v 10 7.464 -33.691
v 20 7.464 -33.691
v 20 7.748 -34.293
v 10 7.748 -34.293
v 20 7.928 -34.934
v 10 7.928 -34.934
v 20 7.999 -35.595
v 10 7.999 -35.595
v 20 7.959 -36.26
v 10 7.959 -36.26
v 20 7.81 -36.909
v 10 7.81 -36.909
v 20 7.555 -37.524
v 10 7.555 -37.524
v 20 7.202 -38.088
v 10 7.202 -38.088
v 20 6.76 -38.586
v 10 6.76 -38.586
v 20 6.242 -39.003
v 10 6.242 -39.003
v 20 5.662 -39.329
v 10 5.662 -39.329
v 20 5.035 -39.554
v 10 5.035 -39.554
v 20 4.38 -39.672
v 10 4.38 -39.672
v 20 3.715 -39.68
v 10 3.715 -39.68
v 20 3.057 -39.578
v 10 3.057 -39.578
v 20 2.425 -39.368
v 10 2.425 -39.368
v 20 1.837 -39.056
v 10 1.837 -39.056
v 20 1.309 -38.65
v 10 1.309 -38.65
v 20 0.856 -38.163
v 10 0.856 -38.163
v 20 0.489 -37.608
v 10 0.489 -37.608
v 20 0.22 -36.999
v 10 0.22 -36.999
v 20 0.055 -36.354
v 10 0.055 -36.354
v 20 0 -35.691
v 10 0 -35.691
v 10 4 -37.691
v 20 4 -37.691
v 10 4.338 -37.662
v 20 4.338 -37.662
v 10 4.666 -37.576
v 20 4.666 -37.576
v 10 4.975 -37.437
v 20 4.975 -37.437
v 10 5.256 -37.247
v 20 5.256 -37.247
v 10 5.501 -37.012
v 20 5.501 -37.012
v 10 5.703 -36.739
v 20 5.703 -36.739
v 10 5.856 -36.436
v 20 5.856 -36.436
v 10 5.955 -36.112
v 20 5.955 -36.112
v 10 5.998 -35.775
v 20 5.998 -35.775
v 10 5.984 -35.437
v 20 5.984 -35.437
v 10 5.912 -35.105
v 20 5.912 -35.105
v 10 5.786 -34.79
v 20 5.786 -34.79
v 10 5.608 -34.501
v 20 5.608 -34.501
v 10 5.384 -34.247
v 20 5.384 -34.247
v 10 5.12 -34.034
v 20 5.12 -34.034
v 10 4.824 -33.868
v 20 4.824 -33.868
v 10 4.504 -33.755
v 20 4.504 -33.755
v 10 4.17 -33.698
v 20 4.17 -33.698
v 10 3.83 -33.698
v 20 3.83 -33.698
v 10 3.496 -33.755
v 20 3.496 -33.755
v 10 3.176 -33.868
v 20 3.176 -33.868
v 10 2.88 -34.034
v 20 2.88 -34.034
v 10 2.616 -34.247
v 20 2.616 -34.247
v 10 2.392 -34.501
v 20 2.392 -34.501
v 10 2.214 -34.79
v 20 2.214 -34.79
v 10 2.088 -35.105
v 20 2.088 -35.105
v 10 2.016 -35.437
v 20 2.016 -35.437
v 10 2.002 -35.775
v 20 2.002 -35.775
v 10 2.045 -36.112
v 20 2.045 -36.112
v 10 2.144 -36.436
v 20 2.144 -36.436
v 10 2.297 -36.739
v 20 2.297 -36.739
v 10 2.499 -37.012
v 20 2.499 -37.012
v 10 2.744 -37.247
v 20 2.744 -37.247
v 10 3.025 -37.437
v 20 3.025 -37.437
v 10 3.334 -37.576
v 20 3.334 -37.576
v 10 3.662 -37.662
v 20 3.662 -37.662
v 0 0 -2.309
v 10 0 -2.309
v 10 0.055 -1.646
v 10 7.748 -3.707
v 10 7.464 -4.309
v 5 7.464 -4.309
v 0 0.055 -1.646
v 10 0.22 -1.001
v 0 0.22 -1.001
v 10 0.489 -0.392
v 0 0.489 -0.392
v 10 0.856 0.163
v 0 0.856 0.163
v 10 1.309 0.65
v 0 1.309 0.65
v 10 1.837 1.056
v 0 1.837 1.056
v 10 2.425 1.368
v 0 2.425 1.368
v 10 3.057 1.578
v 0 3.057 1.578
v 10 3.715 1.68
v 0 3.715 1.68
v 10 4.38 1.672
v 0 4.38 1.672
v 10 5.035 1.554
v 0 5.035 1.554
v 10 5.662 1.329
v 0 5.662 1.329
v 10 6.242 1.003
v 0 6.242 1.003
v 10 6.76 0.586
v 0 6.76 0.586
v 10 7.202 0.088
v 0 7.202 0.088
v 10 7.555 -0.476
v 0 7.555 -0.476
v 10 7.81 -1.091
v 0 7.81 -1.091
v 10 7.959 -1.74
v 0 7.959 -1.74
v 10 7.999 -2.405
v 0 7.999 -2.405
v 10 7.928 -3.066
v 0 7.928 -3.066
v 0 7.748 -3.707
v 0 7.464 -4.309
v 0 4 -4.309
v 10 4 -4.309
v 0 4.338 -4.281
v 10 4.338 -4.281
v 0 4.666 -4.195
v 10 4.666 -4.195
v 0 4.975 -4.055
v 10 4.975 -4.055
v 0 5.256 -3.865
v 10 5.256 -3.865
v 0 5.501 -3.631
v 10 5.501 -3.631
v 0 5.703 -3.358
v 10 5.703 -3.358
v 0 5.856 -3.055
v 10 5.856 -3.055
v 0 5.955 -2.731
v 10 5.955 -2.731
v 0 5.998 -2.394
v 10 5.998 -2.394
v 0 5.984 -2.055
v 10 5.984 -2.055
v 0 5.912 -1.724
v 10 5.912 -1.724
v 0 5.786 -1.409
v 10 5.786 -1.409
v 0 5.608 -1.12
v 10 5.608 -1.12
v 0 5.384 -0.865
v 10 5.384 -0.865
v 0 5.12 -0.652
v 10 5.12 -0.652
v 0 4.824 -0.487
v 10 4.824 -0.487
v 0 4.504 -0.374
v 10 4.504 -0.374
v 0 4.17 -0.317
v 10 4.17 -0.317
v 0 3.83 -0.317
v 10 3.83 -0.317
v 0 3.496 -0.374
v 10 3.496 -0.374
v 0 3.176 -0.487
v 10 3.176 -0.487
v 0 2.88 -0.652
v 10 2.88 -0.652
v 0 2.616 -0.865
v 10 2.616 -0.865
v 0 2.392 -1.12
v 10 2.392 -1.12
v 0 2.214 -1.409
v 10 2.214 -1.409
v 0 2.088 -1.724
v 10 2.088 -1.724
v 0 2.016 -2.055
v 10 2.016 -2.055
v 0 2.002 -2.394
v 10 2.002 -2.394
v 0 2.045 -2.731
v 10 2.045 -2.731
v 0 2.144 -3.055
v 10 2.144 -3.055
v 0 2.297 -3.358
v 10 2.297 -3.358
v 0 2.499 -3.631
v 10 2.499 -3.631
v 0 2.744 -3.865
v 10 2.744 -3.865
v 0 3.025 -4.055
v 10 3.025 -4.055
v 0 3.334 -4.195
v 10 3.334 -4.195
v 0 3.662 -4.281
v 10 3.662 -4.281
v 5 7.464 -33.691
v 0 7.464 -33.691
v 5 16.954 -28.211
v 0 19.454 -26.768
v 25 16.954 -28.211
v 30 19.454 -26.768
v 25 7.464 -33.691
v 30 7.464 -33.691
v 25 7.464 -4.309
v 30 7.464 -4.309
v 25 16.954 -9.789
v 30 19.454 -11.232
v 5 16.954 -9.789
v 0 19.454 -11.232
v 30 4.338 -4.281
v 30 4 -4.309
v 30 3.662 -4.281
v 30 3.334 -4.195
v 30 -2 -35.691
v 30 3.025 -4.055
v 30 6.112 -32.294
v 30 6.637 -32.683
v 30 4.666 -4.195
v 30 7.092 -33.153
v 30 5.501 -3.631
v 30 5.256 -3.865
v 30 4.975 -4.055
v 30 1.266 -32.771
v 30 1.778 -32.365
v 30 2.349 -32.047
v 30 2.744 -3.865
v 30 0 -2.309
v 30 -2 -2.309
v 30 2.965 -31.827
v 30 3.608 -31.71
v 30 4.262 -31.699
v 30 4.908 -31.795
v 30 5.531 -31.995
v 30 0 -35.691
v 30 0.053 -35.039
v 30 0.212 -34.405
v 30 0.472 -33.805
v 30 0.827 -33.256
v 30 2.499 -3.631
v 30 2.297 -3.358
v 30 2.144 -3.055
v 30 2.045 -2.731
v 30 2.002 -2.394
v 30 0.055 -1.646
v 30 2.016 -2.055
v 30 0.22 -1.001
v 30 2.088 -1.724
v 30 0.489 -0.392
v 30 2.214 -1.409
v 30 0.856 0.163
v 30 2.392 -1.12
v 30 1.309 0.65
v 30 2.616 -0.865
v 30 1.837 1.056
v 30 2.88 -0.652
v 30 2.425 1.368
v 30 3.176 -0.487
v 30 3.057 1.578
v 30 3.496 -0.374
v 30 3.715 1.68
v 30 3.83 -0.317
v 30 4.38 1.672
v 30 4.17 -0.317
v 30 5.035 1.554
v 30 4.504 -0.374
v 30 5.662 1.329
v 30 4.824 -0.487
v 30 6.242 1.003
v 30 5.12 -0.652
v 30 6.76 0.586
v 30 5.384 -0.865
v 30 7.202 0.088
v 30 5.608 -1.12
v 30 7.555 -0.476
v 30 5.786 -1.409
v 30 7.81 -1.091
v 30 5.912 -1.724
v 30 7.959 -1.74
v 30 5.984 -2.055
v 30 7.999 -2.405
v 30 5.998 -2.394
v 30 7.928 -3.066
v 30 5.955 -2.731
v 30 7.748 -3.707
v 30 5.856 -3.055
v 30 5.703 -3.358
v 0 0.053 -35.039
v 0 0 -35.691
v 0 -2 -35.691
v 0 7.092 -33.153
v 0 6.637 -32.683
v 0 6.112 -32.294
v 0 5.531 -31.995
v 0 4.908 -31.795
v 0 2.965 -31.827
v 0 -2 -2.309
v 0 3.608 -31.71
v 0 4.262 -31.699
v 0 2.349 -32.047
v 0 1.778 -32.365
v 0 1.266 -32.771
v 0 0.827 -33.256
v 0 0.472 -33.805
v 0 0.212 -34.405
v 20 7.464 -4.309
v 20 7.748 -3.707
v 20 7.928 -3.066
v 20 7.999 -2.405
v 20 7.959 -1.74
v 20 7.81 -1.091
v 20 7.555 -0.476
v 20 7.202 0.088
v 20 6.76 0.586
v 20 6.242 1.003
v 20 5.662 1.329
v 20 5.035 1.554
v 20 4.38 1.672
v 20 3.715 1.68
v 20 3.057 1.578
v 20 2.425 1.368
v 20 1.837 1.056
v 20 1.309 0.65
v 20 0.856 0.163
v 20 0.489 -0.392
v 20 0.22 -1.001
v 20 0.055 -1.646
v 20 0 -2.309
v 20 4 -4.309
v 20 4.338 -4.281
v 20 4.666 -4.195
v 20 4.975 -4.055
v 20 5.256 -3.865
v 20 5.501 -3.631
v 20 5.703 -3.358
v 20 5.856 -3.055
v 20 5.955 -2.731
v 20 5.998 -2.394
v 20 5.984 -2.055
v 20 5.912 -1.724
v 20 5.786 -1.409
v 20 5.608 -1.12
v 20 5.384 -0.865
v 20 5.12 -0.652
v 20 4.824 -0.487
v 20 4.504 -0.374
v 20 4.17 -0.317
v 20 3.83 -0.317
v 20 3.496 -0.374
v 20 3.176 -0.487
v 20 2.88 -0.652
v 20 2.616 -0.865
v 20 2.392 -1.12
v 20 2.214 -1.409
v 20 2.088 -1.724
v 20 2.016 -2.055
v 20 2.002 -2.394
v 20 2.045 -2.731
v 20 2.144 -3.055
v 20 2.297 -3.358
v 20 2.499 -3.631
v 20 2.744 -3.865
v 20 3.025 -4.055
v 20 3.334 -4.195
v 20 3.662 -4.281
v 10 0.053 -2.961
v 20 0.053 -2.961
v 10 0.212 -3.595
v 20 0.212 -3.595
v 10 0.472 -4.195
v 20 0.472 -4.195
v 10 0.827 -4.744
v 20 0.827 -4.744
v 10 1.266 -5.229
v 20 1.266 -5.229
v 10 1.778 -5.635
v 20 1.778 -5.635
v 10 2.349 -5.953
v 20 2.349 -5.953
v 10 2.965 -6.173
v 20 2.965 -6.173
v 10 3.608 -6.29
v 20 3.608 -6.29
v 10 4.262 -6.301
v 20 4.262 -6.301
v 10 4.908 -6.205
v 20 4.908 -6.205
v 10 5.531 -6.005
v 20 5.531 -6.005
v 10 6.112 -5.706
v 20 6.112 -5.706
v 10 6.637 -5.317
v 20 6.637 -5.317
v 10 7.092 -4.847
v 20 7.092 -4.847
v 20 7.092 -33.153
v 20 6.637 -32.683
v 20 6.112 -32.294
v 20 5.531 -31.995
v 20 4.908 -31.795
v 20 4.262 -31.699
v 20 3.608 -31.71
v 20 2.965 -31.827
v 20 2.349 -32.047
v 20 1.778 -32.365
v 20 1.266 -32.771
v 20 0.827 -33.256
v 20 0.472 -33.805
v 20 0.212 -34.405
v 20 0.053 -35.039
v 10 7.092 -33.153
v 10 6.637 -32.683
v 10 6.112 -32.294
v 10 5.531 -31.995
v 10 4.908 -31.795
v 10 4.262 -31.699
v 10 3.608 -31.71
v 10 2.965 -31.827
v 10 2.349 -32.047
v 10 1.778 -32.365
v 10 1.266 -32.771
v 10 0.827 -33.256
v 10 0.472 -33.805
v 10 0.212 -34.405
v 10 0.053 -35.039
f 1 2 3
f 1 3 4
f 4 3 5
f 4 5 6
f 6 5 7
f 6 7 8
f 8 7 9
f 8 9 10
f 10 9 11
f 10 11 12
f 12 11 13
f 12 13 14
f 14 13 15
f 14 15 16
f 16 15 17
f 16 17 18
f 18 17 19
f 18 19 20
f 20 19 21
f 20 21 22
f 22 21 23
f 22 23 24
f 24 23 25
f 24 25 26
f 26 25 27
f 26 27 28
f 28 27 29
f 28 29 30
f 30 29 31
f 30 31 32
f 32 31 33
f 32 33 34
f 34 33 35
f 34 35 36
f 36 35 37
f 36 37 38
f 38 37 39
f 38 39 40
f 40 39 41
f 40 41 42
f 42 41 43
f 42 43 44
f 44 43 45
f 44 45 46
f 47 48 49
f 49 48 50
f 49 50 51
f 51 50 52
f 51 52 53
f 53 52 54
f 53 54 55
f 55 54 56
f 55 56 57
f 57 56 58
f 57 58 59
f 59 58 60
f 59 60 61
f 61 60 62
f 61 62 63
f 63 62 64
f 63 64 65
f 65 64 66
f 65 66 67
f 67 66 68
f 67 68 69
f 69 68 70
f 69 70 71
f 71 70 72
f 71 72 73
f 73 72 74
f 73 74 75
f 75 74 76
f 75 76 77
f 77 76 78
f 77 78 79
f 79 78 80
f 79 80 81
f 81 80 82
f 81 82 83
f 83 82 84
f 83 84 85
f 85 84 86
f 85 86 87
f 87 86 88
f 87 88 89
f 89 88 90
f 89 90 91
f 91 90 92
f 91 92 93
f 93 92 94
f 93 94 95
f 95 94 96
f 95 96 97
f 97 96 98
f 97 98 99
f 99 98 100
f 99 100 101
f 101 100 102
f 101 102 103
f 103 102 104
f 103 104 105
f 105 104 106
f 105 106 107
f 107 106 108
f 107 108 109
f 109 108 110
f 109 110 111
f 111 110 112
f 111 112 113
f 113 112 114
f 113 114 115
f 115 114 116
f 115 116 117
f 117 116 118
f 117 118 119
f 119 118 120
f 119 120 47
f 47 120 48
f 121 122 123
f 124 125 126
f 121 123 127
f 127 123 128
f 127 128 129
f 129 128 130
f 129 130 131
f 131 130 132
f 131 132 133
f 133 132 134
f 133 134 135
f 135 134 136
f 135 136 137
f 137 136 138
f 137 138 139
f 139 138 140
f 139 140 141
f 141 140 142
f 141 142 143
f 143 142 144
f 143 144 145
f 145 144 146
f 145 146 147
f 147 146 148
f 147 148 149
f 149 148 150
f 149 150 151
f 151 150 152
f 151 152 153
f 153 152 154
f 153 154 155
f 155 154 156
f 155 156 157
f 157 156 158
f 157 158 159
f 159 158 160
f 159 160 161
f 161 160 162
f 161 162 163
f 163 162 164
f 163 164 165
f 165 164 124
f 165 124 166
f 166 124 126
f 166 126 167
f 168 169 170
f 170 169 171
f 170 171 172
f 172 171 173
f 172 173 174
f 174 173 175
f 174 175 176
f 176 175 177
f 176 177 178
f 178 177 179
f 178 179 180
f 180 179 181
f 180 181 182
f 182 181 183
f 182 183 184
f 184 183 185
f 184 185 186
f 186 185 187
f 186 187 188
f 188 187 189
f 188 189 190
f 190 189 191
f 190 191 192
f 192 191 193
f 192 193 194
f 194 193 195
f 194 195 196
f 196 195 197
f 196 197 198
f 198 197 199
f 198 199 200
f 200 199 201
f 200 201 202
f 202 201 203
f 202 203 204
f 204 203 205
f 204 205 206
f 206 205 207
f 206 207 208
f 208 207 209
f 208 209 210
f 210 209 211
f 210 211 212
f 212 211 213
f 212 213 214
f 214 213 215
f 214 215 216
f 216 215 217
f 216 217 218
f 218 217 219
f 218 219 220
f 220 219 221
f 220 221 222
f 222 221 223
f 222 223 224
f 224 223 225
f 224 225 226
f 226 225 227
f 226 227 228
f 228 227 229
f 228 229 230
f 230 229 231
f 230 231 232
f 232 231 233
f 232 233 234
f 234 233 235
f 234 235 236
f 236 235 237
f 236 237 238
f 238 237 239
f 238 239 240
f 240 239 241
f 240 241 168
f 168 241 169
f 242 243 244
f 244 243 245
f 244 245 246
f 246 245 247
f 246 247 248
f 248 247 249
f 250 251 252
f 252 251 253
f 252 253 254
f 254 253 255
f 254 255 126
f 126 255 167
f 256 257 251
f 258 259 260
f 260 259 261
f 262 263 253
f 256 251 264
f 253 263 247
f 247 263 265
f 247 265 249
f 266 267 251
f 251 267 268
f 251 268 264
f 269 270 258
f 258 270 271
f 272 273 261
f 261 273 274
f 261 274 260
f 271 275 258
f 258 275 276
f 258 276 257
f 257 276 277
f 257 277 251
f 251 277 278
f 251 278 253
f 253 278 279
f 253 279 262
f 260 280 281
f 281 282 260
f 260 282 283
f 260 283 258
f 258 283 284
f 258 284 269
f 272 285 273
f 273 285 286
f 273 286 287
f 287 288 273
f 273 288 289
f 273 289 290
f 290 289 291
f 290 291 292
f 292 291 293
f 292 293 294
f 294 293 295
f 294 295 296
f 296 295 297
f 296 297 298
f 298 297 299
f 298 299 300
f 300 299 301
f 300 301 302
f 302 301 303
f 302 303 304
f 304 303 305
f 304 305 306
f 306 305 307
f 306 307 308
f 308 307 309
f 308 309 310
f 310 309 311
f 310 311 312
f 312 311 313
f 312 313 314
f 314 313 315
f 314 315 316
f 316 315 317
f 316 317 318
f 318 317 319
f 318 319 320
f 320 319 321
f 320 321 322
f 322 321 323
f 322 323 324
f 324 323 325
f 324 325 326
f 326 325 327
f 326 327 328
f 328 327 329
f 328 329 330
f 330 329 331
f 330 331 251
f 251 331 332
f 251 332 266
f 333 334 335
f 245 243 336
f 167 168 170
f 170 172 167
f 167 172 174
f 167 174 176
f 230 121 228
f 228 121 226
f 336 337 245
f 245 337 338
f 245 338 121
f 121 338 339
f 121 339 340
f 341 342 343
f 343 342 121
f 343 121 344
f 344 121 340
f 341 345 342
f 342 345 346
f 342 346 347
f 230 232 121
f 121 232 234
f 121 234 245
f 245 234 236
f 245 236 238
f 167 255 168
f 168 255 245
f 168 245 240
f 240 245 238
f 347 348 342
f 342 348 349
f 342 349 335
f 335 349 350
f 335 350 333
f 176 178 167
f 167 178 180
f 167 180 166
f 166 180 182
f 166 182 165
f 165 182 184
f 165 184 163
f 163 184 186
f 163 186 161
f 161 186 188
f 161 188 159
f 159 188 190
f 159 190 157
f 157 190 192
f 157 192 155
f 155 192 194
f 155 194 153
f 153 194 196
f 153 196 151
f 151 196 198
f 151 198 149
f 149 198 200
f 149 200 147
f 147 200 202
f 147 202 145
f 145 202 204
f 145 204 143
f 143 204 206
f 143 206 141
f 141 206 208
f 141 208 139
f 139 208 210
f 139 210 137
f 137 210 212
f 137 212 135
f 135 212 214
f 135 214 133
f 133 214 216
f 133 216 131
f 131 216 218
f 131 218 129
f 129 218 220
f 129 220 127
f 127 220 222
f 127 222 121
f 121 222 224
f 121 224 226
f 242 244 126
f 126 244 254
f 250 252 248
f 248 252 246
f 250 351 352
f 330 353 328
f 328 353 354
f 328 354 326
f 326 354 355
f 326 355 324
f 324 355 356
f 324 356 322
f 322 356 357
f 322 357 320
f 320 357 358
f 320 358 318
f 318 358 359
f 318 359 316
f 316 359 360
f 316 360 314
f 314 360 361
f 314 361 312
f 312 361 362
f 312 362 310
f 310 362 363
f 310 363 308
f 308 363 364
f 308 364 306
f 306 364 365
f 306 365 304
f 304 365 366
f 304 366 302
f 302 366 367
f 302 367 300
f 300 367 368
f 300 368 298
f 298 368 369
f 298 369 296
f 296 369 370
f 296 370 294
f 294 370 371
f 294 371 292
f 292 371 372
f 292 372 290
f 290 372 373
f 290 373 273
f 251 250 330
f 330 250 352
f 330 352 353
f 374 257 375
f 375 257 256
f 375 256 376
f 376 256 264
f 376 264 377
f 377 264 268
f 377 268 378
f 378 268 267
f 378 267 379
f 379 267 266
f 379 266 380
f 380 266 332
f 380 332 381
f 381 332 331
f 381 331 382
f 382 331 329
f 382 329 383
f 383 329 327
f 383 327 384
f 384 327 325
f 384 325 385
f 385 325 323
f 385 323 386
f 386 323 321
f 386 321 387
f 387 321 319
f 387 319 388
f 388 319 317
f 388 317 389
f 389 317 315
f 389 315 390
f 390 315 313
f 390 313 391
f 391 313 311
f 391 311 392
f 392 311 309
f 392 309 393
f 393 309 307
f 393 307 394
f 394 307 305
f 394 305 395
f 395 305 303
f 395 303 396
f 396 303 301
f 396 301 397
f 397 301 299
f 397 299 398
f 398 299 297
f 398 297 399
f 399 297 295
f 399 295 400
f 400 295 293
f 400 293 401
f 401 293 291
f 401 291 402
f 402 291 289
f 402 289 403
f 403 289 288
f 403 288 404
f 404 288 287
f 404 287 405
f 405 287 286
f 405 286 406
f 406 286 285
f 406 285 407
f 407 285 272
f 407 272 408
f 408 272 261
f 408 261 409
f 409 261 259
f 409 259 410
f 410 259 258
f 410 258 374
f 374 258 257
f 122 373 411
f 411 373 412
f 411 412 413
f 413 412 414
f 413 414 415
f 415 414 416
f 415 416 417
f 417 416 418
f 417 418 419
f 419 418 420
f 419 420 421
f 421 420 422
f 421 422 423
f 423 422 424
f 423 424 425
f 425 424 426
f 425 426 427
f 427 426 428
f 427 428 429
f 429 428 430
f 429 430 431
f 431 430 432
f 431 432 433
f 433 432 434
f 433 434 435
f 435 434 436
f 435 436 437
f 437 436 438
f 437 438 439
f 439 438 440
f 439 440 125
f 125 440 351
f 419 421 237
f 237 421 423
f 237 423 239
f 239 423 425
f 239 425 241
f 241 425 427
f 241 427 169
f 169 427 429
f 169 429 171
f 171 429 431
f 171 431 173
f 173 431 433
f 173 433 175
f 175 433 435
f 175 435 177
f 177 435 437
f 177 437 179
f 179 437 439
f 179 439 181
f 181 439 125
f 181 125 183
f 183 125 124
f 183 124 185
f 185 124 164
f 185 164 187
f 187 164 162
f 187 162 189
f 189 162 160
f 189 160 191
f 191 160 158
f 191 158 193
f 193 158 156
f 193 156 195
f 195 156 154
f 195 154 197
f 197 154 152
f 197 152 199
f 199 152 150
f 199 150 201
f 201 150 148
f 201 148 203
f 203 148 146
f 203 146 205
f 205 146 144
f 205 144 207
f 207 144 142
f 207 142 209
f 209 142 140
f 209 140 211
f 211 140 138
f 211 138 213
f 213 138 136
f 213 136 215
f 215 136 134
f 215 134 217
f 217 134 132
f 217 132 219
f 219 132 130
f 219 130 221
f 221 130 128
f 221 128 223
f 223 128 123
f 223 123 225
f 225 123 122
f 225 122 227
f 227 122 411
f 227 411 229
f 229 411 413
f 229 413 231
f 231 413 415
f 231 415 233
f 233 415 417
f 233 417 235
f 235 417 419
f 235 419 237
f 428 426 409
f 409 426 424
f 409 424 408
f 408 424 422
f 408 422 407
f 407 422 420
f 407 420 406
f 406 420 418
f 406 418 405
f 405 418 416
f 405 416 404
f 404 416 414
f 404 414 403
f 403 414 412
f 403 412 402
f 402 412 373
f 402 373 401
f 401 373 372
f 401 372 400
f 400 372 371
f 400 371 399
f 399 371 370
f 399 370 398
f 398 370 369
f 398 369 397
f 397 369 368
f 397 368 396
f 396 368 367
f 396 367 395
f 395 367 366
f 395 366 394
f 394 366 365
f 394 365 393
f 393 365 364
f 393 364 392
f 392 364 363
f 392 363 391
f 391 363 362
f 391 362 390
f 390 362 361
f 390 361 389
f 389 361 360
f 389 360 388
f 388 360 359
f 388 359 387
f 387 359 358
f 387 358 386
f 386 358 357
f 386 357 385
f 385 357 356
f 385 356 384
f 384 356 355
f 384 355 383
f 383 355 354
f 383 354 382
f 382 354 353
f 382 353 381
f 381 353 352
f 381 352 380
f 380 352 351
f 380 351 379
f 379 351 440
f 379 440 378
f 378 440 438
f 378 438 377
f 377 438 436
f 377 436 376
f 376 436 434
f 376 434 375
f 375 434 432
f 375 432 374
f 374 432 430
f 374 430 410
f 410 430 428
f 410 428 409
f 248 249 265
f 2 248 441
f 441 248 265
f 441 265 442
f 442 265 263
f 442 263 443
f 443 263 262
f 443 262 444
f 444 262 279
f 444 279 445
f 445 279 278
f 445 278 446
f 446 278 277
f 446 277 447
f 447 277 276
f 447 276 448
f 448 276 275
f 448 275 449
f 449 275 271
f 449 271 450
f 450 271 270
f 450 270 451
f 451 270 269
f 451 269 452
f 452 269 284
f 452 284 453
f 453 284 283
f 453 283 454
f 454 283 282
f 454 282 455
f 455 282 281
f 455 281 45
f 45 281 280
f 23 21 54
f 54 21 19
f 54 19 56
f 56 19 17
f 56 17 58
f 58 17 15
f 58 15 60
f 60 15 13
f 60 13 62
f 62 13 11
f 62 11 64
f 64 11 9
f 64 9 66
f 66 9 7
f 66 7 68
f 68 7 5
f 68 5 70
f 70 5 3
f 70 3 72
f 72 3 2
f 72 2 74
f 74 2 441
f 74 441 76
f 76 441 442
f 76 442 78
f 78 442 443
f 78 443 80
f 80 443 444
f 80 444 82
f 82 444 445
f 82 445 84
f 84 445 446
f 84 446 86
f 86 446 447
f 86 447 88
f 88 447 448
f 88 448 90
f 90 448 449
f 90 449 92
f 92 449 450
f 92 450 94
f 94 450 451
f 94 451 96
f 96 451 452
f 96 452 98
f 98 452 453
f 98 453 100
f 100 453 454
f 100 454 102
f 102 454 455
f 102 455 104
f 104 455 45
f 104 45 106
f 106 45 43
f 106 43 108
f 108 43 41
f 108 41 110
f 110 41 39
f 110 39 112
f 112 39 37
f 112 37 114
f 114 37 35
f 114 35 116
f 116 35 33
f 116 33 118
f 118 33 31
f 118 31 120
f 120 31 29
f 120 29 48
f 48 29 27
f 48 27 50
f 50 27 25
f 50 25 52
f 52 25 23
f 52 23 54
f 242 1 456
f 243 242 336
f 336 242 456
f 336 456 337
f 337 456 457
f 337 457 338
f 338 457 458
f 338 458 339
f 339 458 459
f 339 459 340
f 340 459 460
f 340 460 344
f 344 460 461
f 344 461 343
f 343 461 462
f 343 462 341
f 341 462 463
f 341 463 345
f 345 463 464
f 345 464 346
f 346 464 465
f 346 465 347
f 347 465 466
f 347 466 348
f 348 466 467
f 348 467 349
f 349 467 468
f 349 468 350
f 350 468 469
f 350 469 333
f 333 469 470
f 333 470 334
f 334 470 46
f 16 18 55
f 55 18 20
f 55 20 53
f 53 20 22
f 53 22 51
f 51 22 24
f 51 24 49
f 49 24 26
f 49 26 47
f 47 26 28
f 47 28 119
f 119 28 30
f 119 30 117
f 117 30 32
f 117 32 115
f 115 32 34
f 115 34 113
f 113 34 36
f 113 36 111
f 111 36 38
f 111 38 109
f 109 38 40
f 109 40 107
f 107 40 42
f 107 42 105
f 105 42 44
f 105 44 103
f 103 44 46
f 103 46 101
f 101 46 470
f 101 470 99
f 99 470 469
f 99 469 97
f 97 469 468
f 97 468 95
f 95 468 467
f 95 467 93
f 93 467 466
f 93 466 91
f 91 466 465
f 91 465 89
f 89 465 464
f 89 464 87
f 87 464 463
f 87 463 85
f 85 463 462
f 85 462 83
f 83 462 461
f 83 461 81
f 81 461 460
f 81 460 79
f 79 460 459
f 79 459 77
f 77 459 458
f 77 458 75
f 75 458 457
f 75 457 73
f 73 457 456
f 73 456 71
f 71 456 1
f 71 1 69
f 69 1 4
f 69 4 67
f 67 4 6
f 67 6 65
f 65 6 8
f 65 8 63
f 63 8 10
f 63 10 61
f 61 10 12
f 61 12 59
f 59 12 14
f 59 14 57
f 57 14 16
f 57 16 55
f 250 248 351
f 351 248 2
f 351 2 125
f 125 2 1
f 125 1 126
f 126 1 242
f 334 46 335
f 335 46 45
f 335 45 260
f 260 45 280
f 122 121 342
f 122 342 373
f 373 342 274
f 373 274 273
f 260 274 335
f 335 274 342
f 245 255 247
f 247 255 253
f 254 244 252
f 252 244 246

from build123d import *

# Parameters (mm, degrees)
EXTRUDE_1_DEPTH      = 30
SKETCH_2_W           = 20
SKETCH_2_H           = 10.454482672
CUT_EXTRUDE_1_DEPTH  = 52.134626233
CUT_EXTRUDE_4_DEPTH  = 52.134626233
SKETCH_4_R           = 4
SKETCH_4_R_2         = 2
EXTRUDE_2_DEPTH      = 30
CUT_EXTRUDE_5_DEPTH  = 53.403183519
SKETCH_6_R           = 4
SKETCH_6_R_2         = 2
EXTRUDE_3_DEPTH      = 30
CUT_EXTRUDE_START    = -10
SKETCH_7_R           = 4
SKETCH_7_R_2         = 2
CUT_EXTRUDE_8_DEPTH  = 10
SKETCH_8_R           = 4
SKETCH_8_R_2         = 2
CUT_EXTRUDE_9_DEPTH  = 10
CUT_EXTRUDE_START_2  = -20
SKETCH_9_R           = 4
SKETCH_9_R_2         = 2
CUT_EXTRUDE_10_DEPTH = 10
EXTRUDE_4_DEPTH      = 30
SKETCH_12_W          = 33.381197846
SKETCH_12_H          = 2
EXTRUDE_5_DEPTH      = 30
EXTRUDE_6_DEPTH      = 30
SKETCH_13_W          = 20
SKETCH_13_H          = 3.5
CUT_EXTRUDE_11_DEPTH = 30


with BuildPart() as part:
    # 스케치1 → 보스-돌출1 (new body)
    with BuildSketch(Plane(origin=(0, 0, 0), x_dir=(0, 0, -1), z_dir=(1, 0, 0))):
        Polygon((0, 0), (9.5, 16.454482672), (28.5, 16.454482672), (38, 0), align=None)
    extrude(amount=EXTRUDE_1_DEPTH)

    # 스케치2 → 컷-돌출1 (cut, through all)
    with BuildSketch(Plane.XY):
        with Locations((15, 8.227241336)):
            Rectangle(SKETCH_2_W, SKETCH_2_H)
    extrude(amount=-CUT_EXTRUDE_1_DEPTH, mode=Mode.SUBTRACT)

    # 스케치3 → 컷-돌출4 (cut, through all)
    with BuildSketch(Plane(origin=(30, 0, 0), x_dir=(0, 0, -1), z_dir=(1, 0, 0))):
        with BuildLine():
            Line((33.690598923, 7.464101615), (37.690598923, 0.535898385))
            ThreePointArc((37.690598923, 0.535898385), (39.154700538, 2), (39.690598923, 4))
            ThreePointArc((39.690598923, 4), (37.690598923, 7.464101615), (33.690598923, 7.464101615))
        make_face()
        with BuildLine():
            ThreePointArc((35.690598923, 0), (36.725875104, 0.136296695), (37.690598923, 0.535898385))
            Line((37.690598923, 0.535898385), (33.690598923, 7.464101615))
            ThreePointArc((33.690598923, 7.464101615), (31.826895618, 2.96472382), (35.690598923, 0))
        make_face()
        with BuildLine():
            Line((35.690598923, 0), (38, 0))
            Line((38, 0), (37.690598923, 0.535898385))
            ThreePointArc((37.690598923, 0.535898385), (36.725875104, 0.136296695), (35.690598923, 0))
        make_face()
    extrude(amount=-CUT_EXTRUDE_4_DEPTH, mode=Mode.SUBTRACT)

    # 스케치4 → 보스-돌출2 (add)
    with BuildSketch(Plane(origin=(30, 0, 0), x_dir=(0, 0, -1), z_dir=(1, 0, 0))):
        with Locations((35.690598923, 4)):
            Circle(SKETCH_4_R)
        with Locations((35.690598923, 4)):
            Circle(SKETCH_4_R_2, mode=Mode.SUBTRACT)
    extrude(amount=-EXTRUDE_2_DEPTH)

    # 스케치5 → 컷-돌출5 (cut, through all)
    with BuildSketch(Plane(origin=(30, 0, 0), x_dir=(0, 0, -1), z_dir=(1, 0, 0))):
        with BuildLine():
            Line((4.309401077, 7.464101615), (0.309401077, 0.535898385))
            ThreePointArc((0.309401077, 0.535898385), (1.274124896, 0.136296695), (2.309401077, 0))
            ThreePointArc((2.309401077, 0), (5.137828202, 1.171572875), (6.309401077, 4))
            ThreePointArc((6.309401077, 4), (5.773502692, 6), (4.309401077, 7.464101615))
        make_face()
        with BuildLine():
            ThreePointArc((4.309401077, 7.464101615), (-1.154700538, 6), (0.309401077, 0.535898385))
            Line((0.309401077, 0.535898385), (4.309401077, 7.464101615))
        make_face()
        with BuildLine():
            ThreePointArc((2.309401077, 0), (1.274124896, 0.136296695), (0.309401077, 0.535898385))
            Line((0.309401077, 0.535898385), (0, 0))
            Line((0, 0), (2.309401077, 0))
        make_face()
    extrude(amount=-CUT_EXTRUDE_5_DEPTH, mode=Mode.SUBTRACT)

    # 스케치6 → 보스-돌출3 (add)
    with BuildSketch(Plane(origin=(30, 0, 0), x_dir=(0, 0, -1), z_dir=(1, 0, 0))):
        with Locations((2.309401077, 4)):
            Circle(SKETCH_6_R)
        with Locations((2.309401077, 4)):
            Circle(SKETCH_6_R_2, mode=Mode.SUBTRACT)
    extrude(amount=-EXTRUDE_3_DEPTH)

    # 스케치7 → 컷-돌출8 (cut)
    with BuildSketch(Plane(origin=(30, 0, 0), x_dir=(0, 0, -1), z_dir=(1, 0, 0)).offset(CUT_EXTRUDE_START)):
        with Locations((2.309401077, 4)):
            Circle(SKETCH_7_R)
        with Locations((2.309401077, 4)):
            Circle(SKETCH_7_R_2, mode=Mode.SUBTRACT)
    extrude(amount=-CUT_EXTRUDE_8_DEPTH, mode=Mode.SUBTRACT)

    # 스케치8 → 컷-돌출9 (cut)
    with BuildSketch(Plane(origin=(30, 0, 0), x_dir=(0, 0, -1), z_dir=(1, 0, 0))):
        with Locations((35.690598923, 4)):
            Circle(SKETCH_8_R)
        with Locations((35.690598923, 4)):
            Circle(SKETCH_8_R_2, mode=Mode.SUBTRACT)
    extrude(amount=-CUT_EXTRUDE_9_DEPTH, mode=Mode.SUBTRACT)

    # 스케치9 → 컷-돌출10 (cut)
    with BuildSketch(Plane(origin=(30, 0, 0), x_dir=(0, 0, -1), z_dir=(1, 0, 0)).offset(CUT_EXTRUDE_START_2)):
        with Locations((35.690598923, 4)):
            Circle(SKETCH_9_R)
        with Locations((35.690598923, 4)):
            Circle(SKETCH_9_R_2, mode=Mode.SUBTRACT)
    extrude(amount=-CUT_EXTRUDE_10_DEPTH, mode=Mode.SUBTRACT)

    # 스케치11 → 보스-돌출4 (add)
    with BuildSketch(Plane(origin=(30, 0, 0), x_dir=(0, 0, -1), z_dir=(1, 0, 0))):
        with BuildLine():
            Line((4.309401077, 7.464101615), (33.690598923, 7.464101615))
            ThreePointArc((33.690598923, 7.464101615), (31.826895618, 2.96472382), (35.690598923, 0))
            Line((35.690598923, 0), (2.309401077, 0))
            ThreePointArc((2.309401077, 0), (6.173104382, 2.96472382), (4.309401077, 7.464101615))
        make_face()
    extrude(amount=-EXTRUDE_4_DEPTH)

    # 스케치12 → 보스-돌출5 (add)
    with BuildSketch(Plane.ZY):
        with Locations((-19, -1)):
            Rectangle(SKETCH_12_W, SKETCH_12_H)
    extrude(amount=-EXTRUDE_5_DEPTH)

    # 스케치14 → 보스-돌출6 (add)
    with BuildSketch(Plane(origin=(30, 0, 0), x_dir=(0, 0, -1), z_dir=(1, 0, 0))):
        Polygon((28.5, 16.454482672), (26.767949192, 19.454482672), (11.232050808, 19.454482672), (9.5, 16.454482672), align=None)
    extrude(amount=-EXTRUDE_6_DEPTH)

    # 스케치13 → 컷-돌출11 (cut)
    with BuildSketch(Plane(origin=(0, 0, -35.690598923), x_dir=(-1, 0, 0), z_dir=(0, 0, -1))):
        with Locations((-15, 15.204482672)):
            Rectangle(SKETCH_13_W, SKETCH_13_H)
    extrude(amount=-CUT_EXTRUDE_11_DEPTH, mode=Mode.SUBTRACT)


solid = part.part
